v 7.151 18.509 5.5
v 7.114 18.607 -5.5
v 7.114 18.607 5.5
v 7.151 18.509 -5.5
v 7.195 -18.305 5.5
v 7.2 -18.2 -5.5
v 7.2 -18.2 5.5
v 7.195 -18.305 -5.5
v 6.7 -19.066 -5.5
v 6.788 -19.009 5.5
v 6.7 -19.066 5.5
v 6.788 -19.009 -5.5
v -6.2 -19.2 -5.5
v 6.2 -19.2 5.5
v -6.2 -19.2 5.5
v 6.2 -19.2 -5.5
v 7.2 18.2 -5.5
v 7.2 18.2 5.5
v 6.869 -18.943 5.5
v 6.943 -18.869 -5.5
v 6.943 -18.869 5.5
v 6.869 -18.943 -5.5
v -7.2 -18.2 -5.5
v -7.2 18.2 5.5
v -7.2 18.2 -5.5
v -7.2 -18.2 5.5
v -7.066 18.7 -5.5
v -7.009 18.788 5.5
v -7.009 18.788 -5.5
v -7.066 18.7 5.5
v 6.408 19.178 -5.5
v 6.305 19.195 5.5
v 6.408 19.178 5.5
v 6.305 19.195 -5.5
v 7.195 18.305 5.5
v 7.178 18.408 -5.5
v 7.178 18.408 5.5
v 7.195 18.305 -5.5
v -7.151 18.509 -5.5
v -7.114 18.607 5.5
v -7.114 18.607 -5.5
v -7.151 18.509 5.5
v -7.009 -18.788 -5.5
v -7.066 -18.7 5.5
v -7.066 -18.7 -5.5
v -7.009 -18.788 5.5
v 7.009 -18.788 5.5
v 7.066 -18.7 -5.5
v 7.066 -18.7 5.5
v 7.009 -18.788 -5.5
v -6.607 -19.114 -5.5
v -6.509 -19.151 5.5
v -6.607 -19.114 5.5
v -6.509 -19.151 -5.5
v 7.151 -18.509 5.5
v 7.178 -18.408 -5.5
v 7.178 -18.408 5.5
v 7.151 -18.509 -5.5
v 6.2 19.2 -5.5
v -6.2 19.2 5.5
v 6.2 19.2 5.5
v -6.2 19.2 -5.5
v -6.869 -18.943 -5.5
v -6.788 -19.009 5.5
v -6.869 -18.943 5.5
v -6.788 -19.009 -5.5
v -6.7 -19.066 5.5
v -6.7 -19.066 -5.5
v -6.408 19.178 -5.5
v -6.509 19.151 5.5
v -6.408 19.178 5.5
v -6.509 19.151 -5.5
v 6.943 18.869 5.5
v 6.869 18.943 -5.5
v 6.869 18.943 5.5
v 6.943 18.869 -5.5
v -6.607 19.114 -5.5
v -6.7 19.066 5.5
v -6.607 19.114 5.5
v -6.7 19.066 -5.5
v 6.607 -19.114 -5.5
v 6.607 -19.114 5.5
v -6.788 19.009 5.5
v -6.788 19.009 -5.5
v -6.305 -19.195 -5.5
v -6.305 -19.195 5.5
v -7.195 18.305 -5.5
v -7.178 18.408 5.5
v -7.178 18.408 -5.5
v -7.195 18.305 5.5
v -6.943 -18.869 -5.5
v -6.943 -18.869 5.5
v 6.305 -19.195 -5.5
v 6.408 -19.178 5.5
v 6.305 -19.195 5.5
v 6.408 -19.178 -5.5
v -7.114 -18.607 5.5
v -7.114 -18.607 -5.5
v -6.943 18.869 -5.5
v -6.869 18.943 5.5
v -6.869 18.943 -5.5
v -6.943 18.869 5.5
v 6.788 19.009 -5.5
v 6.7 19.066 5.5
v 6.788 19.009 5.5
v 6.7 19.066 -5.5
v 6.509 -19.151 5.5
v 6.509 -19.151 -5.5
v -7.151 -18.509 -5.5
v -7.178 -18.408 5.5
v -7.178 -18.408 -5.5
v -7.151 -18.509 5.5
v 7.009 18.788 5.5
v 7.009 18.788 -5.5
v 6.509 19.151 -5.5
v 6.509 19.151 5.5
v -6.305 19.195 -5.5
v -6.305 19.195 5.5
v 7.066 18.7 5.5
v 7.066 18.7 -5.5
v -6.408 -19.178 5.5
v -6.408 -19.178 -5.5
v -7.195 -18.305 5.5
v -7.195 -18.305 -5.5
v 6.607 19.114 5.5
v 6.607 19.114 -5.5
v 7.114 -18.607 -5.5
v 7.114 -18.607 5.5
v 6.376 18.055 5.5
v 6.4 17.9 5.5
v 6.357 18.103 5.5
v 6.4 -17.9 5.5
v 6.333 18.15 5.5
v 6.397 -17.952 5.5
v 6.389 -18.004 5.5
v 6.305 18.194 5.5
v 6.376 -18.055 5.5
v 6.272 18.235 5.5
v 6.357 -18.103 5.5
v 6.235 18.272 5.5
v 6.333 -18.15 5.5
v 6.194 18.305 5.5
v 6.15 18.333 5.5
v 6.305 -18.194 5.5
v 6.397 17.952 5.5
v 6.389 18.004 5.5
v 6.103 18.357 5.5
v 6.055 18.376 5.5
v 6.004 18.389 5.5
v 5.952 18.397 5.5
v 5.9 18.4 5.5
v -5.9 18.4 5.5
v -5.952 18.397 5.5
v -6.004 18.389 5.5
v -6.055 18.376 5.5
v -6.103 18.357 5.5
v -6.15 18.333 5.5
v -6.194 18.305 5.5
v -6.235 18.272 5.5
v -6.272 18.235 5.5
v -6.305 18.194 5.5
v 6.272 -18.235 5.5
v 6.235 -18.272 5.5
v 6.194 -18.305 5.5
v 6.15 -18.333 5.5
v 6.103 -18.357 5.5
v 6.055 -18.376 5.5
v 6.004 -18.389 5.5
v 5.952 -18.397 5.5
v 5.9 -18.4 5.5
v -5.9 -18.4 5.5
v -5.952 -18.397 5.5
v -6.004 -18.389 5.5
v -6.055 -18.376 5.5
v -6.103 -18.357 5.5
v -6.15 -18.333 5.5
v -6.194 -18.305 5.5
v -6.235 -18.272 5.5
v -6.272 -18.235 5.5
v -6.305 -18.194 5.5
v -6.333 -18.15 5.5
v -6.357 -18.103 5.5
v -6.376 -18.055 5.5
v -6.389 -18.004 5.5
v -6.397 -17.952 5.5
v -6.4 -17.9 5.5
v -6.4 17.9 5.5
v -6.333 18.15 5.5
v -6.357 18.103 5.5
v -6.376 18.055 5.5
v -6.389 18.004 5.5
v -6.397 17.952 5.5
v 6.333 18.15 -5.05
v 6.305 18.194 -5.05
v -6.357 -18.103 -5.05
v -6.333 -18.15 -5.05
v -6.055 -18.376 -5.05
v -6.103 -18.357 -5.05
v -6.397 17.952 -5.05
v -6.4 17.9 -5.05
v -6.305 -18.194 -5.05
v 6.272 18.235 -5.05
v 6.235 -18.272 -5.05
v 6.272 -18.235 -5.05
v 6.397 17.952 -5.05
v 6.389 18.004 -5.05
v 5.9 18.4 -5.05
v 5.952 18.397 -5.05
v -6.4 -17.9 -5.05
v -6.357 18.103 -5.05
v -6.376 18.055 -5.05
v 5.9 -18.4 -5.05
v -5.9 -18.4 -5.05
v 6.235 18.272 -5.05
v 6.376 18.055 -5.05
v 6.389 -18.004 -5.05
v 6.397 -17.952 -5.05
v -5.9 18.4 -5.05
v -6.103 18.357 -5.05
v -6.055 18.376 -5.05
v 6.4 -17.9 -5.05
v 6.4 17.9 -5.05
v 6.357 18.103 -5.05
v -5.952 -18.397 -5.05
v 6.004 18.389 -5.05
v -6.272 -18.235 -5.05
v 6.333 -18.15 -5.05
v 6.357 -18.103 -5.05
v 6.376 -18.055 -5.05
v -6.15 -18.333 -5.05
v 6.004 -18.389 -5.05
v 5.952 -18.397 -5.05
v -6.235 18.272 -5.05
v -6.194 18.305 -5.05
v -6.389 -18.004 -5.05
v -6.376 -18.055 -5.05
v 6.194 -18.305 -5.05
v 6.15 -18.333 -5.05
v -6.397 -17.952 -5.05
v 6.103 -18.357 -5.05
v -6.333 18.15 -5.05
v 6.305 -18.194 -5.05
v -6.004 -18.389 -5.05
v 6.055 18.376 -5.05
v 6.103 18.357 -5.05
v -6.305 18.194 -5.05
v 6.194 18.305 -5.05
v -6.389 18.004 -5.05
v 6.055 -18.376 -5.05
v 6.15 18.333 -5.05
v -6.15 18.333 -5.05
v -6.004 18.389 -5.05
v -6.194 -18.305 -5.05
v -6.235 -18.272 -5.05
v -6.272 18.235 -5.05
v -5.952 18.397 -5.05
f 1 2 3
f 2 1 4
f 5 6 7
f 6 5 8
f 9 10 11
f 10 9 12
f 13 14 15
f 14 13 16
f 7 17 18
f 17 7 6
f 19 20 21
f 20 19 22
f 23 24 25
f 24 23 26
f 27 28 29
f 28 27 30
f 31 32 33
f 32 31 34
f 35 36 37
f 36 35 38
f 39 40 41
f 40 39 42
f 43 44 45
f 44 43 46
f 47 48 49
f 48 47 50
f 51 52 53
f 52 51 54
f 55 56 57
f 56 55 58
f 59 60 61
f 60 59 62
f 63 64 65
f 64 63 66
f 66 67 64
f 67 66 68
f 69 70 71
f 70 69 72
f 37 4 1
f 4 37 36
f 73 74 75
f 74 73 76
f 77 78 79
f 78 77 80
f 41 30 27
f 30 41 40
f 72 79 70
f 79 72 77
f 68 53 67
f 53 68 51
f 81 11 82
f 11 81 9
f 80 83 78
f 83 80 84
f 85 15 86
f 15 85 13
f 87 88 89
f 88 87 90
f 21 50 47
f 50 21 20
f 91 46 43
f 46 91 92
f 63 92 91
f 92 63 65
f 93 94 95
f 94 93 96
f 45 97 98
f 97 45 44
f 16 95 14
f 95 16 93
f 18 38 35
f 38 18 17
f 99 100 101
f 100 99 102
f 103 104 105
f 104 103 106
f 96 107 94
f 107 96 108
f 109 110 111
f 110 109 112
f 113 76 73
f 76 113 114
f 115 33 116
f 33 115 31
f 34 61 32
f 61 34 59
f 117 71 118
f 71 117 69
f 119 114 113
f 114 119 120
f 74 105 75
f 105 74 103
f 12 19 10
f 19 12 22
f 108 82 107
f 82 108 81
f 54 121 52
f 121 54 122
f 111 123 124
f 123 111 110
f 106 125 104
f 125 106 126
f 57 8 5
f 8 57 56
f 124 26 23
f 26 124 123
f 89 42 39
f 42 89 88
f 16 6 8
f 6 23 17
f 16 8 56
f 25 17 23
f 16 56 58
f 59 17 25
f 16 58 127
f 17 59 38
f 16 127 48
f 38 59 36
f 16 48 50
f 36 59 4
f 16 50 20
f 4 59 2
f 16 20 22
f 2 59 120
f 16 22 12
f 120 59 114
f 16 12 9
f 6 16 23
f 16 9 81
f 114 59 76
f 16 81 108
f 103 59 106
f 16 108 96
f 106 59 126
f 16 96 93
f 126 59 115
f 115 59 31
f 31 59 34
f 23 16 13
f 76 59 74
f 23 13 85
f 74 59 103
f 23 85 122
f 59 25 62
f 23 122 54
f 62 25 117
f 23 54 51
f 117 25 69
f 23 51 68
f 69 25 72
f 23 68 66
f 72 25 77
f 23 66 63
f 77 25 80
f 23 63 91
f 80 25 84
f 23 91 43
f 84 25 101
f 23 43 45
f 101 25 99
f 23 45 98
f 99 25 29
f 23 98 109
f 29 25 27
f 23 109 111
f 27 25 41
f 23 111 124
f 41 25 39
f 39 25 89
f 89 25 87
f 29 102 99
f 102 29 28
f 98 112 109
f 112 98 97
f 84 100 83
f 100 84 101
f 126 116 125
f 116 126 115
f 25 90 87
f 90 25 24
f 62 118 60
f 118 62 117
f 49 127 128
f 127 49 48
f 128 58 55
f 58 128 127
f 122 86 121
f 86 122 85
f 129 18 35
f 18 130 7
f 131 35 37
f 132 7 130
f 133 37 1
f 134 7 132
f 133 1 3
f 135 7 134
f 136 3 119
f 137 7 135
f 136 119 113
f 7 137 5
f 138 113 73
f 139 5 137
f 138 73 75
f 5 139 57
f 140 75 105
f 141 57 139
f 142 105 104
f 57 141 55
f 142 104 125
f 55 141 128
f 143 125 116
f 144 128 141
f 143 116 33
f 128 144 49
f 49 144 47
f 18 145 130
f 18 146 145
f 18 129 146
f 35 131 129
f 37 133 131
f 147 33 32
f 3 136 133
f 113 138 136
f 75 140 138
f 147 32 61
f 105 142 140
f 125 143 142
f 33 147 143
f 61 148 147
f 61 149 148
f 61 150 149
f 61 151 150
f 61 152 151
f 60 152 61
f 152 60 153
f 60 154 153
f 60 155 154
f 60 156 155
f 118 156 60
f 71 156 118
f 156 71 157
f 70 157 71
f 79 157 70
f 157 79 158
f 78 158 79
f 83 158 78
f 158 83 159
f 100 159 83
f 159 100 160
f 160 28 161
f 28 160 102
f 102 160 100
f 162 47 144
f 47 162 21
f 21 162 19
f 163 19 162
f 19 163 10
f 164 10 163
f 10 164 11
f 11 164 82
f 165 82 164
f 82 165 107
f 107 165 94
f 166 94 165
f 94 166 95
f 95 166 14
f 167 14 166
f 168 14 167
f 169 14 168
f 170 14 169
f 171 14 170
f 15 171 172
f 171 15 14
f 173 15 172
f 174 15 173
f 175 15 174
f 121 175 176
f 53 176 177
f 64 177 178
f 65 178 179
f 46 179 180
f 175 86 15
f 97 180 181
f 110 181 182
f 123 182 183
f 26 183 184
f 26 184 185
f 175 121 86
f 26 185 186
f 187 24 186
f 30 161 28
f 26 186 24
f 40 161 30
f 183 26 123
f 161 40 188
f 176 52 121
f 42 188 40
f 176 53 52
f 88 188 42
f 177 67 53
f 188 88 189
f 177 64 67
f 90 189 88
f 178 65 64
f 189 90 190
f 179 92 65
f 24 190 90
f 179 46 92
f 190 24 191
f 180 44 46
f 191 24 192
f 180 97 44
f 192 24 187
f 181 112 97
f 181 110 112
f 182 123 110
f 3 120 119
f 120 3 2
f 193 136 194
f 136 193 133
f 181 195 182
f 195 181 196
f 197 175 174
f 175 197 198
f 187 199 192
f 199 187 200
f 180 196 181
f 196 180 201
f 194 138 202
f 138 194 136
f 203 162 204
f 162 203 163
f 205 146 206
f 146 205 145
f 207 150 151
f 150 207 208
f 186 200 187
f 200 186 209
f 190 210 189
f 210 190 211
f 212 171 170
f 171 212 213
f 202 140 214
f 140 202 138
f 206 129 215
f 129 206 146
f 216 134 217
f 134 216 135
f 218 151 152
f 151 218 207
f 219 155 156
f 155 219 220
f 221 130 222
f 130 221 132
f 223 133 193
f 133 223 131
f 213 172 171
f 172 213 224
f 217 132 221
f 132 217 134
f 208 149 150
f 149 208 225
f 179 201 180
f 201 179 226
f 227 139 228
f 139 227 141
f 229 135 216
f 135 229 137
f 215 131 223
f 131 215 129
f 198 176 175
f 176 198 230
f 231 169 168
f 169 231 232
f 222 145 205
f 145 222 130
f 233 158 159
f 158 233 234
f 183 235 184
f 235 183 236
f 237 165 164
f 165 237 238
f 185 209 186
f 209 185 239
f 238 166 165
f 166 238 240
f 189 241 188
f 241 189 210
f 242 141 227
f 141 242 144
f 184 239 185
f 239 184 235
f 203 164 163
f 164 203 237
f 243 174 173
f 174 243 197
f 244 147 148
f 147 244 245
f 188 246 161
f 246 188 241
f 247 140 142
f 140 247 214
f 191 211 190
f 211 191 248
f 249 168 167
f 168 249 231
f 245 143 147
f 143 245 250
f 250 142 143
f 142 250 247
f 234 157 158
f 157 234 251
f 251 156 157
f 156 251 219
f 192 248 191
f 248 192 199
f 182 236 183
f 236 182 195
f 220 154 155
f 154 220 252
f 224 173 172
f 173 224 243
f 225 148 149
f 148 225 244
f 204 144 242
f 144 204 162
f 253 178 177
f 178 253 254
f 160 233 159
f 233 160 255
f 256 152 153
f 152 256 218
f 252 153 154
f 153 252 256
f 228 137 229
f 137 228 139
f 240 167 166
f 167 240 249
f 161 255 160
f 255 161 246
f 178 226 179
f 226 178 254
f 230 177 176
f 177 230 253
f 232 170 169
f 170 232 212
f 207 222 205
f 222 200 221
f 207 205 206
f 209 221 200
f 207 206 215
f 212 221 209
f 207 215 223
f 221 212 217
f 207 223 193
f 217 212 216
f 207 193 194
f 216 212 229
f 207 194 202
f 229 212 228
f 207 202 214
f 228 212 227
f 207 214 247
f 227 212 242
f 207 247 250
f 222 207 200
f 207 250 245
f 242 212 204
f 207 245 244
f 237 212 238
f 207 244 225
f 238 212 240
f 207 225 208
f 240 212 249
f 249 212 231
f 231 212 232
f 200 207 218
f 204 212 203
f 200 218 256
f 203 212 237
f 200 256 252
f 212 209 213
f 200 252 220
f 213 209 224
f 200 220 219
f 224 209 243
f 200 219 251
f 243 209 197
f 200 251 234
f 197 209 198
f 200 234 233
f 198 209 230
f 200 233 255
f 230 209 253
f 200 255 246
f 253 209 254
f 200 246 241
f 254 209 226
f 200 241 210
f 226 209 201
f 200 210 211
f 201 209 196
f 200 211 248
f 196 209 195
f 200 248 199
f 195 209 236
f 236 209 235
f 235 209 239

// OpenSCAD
difference() {
    minkowski() {cube([16-1.6-2,40-1.6-2, 10], center=true); cylinder(r=1, h=1, $fn=60, center=true);};
    translate([0,0,0.45]) minkowski() {cube([16-2*1.6-1,40-2*1.6-1, 10], center=true); cylinder(r=0.5, h=1, $fn=60, center=true);};
}
